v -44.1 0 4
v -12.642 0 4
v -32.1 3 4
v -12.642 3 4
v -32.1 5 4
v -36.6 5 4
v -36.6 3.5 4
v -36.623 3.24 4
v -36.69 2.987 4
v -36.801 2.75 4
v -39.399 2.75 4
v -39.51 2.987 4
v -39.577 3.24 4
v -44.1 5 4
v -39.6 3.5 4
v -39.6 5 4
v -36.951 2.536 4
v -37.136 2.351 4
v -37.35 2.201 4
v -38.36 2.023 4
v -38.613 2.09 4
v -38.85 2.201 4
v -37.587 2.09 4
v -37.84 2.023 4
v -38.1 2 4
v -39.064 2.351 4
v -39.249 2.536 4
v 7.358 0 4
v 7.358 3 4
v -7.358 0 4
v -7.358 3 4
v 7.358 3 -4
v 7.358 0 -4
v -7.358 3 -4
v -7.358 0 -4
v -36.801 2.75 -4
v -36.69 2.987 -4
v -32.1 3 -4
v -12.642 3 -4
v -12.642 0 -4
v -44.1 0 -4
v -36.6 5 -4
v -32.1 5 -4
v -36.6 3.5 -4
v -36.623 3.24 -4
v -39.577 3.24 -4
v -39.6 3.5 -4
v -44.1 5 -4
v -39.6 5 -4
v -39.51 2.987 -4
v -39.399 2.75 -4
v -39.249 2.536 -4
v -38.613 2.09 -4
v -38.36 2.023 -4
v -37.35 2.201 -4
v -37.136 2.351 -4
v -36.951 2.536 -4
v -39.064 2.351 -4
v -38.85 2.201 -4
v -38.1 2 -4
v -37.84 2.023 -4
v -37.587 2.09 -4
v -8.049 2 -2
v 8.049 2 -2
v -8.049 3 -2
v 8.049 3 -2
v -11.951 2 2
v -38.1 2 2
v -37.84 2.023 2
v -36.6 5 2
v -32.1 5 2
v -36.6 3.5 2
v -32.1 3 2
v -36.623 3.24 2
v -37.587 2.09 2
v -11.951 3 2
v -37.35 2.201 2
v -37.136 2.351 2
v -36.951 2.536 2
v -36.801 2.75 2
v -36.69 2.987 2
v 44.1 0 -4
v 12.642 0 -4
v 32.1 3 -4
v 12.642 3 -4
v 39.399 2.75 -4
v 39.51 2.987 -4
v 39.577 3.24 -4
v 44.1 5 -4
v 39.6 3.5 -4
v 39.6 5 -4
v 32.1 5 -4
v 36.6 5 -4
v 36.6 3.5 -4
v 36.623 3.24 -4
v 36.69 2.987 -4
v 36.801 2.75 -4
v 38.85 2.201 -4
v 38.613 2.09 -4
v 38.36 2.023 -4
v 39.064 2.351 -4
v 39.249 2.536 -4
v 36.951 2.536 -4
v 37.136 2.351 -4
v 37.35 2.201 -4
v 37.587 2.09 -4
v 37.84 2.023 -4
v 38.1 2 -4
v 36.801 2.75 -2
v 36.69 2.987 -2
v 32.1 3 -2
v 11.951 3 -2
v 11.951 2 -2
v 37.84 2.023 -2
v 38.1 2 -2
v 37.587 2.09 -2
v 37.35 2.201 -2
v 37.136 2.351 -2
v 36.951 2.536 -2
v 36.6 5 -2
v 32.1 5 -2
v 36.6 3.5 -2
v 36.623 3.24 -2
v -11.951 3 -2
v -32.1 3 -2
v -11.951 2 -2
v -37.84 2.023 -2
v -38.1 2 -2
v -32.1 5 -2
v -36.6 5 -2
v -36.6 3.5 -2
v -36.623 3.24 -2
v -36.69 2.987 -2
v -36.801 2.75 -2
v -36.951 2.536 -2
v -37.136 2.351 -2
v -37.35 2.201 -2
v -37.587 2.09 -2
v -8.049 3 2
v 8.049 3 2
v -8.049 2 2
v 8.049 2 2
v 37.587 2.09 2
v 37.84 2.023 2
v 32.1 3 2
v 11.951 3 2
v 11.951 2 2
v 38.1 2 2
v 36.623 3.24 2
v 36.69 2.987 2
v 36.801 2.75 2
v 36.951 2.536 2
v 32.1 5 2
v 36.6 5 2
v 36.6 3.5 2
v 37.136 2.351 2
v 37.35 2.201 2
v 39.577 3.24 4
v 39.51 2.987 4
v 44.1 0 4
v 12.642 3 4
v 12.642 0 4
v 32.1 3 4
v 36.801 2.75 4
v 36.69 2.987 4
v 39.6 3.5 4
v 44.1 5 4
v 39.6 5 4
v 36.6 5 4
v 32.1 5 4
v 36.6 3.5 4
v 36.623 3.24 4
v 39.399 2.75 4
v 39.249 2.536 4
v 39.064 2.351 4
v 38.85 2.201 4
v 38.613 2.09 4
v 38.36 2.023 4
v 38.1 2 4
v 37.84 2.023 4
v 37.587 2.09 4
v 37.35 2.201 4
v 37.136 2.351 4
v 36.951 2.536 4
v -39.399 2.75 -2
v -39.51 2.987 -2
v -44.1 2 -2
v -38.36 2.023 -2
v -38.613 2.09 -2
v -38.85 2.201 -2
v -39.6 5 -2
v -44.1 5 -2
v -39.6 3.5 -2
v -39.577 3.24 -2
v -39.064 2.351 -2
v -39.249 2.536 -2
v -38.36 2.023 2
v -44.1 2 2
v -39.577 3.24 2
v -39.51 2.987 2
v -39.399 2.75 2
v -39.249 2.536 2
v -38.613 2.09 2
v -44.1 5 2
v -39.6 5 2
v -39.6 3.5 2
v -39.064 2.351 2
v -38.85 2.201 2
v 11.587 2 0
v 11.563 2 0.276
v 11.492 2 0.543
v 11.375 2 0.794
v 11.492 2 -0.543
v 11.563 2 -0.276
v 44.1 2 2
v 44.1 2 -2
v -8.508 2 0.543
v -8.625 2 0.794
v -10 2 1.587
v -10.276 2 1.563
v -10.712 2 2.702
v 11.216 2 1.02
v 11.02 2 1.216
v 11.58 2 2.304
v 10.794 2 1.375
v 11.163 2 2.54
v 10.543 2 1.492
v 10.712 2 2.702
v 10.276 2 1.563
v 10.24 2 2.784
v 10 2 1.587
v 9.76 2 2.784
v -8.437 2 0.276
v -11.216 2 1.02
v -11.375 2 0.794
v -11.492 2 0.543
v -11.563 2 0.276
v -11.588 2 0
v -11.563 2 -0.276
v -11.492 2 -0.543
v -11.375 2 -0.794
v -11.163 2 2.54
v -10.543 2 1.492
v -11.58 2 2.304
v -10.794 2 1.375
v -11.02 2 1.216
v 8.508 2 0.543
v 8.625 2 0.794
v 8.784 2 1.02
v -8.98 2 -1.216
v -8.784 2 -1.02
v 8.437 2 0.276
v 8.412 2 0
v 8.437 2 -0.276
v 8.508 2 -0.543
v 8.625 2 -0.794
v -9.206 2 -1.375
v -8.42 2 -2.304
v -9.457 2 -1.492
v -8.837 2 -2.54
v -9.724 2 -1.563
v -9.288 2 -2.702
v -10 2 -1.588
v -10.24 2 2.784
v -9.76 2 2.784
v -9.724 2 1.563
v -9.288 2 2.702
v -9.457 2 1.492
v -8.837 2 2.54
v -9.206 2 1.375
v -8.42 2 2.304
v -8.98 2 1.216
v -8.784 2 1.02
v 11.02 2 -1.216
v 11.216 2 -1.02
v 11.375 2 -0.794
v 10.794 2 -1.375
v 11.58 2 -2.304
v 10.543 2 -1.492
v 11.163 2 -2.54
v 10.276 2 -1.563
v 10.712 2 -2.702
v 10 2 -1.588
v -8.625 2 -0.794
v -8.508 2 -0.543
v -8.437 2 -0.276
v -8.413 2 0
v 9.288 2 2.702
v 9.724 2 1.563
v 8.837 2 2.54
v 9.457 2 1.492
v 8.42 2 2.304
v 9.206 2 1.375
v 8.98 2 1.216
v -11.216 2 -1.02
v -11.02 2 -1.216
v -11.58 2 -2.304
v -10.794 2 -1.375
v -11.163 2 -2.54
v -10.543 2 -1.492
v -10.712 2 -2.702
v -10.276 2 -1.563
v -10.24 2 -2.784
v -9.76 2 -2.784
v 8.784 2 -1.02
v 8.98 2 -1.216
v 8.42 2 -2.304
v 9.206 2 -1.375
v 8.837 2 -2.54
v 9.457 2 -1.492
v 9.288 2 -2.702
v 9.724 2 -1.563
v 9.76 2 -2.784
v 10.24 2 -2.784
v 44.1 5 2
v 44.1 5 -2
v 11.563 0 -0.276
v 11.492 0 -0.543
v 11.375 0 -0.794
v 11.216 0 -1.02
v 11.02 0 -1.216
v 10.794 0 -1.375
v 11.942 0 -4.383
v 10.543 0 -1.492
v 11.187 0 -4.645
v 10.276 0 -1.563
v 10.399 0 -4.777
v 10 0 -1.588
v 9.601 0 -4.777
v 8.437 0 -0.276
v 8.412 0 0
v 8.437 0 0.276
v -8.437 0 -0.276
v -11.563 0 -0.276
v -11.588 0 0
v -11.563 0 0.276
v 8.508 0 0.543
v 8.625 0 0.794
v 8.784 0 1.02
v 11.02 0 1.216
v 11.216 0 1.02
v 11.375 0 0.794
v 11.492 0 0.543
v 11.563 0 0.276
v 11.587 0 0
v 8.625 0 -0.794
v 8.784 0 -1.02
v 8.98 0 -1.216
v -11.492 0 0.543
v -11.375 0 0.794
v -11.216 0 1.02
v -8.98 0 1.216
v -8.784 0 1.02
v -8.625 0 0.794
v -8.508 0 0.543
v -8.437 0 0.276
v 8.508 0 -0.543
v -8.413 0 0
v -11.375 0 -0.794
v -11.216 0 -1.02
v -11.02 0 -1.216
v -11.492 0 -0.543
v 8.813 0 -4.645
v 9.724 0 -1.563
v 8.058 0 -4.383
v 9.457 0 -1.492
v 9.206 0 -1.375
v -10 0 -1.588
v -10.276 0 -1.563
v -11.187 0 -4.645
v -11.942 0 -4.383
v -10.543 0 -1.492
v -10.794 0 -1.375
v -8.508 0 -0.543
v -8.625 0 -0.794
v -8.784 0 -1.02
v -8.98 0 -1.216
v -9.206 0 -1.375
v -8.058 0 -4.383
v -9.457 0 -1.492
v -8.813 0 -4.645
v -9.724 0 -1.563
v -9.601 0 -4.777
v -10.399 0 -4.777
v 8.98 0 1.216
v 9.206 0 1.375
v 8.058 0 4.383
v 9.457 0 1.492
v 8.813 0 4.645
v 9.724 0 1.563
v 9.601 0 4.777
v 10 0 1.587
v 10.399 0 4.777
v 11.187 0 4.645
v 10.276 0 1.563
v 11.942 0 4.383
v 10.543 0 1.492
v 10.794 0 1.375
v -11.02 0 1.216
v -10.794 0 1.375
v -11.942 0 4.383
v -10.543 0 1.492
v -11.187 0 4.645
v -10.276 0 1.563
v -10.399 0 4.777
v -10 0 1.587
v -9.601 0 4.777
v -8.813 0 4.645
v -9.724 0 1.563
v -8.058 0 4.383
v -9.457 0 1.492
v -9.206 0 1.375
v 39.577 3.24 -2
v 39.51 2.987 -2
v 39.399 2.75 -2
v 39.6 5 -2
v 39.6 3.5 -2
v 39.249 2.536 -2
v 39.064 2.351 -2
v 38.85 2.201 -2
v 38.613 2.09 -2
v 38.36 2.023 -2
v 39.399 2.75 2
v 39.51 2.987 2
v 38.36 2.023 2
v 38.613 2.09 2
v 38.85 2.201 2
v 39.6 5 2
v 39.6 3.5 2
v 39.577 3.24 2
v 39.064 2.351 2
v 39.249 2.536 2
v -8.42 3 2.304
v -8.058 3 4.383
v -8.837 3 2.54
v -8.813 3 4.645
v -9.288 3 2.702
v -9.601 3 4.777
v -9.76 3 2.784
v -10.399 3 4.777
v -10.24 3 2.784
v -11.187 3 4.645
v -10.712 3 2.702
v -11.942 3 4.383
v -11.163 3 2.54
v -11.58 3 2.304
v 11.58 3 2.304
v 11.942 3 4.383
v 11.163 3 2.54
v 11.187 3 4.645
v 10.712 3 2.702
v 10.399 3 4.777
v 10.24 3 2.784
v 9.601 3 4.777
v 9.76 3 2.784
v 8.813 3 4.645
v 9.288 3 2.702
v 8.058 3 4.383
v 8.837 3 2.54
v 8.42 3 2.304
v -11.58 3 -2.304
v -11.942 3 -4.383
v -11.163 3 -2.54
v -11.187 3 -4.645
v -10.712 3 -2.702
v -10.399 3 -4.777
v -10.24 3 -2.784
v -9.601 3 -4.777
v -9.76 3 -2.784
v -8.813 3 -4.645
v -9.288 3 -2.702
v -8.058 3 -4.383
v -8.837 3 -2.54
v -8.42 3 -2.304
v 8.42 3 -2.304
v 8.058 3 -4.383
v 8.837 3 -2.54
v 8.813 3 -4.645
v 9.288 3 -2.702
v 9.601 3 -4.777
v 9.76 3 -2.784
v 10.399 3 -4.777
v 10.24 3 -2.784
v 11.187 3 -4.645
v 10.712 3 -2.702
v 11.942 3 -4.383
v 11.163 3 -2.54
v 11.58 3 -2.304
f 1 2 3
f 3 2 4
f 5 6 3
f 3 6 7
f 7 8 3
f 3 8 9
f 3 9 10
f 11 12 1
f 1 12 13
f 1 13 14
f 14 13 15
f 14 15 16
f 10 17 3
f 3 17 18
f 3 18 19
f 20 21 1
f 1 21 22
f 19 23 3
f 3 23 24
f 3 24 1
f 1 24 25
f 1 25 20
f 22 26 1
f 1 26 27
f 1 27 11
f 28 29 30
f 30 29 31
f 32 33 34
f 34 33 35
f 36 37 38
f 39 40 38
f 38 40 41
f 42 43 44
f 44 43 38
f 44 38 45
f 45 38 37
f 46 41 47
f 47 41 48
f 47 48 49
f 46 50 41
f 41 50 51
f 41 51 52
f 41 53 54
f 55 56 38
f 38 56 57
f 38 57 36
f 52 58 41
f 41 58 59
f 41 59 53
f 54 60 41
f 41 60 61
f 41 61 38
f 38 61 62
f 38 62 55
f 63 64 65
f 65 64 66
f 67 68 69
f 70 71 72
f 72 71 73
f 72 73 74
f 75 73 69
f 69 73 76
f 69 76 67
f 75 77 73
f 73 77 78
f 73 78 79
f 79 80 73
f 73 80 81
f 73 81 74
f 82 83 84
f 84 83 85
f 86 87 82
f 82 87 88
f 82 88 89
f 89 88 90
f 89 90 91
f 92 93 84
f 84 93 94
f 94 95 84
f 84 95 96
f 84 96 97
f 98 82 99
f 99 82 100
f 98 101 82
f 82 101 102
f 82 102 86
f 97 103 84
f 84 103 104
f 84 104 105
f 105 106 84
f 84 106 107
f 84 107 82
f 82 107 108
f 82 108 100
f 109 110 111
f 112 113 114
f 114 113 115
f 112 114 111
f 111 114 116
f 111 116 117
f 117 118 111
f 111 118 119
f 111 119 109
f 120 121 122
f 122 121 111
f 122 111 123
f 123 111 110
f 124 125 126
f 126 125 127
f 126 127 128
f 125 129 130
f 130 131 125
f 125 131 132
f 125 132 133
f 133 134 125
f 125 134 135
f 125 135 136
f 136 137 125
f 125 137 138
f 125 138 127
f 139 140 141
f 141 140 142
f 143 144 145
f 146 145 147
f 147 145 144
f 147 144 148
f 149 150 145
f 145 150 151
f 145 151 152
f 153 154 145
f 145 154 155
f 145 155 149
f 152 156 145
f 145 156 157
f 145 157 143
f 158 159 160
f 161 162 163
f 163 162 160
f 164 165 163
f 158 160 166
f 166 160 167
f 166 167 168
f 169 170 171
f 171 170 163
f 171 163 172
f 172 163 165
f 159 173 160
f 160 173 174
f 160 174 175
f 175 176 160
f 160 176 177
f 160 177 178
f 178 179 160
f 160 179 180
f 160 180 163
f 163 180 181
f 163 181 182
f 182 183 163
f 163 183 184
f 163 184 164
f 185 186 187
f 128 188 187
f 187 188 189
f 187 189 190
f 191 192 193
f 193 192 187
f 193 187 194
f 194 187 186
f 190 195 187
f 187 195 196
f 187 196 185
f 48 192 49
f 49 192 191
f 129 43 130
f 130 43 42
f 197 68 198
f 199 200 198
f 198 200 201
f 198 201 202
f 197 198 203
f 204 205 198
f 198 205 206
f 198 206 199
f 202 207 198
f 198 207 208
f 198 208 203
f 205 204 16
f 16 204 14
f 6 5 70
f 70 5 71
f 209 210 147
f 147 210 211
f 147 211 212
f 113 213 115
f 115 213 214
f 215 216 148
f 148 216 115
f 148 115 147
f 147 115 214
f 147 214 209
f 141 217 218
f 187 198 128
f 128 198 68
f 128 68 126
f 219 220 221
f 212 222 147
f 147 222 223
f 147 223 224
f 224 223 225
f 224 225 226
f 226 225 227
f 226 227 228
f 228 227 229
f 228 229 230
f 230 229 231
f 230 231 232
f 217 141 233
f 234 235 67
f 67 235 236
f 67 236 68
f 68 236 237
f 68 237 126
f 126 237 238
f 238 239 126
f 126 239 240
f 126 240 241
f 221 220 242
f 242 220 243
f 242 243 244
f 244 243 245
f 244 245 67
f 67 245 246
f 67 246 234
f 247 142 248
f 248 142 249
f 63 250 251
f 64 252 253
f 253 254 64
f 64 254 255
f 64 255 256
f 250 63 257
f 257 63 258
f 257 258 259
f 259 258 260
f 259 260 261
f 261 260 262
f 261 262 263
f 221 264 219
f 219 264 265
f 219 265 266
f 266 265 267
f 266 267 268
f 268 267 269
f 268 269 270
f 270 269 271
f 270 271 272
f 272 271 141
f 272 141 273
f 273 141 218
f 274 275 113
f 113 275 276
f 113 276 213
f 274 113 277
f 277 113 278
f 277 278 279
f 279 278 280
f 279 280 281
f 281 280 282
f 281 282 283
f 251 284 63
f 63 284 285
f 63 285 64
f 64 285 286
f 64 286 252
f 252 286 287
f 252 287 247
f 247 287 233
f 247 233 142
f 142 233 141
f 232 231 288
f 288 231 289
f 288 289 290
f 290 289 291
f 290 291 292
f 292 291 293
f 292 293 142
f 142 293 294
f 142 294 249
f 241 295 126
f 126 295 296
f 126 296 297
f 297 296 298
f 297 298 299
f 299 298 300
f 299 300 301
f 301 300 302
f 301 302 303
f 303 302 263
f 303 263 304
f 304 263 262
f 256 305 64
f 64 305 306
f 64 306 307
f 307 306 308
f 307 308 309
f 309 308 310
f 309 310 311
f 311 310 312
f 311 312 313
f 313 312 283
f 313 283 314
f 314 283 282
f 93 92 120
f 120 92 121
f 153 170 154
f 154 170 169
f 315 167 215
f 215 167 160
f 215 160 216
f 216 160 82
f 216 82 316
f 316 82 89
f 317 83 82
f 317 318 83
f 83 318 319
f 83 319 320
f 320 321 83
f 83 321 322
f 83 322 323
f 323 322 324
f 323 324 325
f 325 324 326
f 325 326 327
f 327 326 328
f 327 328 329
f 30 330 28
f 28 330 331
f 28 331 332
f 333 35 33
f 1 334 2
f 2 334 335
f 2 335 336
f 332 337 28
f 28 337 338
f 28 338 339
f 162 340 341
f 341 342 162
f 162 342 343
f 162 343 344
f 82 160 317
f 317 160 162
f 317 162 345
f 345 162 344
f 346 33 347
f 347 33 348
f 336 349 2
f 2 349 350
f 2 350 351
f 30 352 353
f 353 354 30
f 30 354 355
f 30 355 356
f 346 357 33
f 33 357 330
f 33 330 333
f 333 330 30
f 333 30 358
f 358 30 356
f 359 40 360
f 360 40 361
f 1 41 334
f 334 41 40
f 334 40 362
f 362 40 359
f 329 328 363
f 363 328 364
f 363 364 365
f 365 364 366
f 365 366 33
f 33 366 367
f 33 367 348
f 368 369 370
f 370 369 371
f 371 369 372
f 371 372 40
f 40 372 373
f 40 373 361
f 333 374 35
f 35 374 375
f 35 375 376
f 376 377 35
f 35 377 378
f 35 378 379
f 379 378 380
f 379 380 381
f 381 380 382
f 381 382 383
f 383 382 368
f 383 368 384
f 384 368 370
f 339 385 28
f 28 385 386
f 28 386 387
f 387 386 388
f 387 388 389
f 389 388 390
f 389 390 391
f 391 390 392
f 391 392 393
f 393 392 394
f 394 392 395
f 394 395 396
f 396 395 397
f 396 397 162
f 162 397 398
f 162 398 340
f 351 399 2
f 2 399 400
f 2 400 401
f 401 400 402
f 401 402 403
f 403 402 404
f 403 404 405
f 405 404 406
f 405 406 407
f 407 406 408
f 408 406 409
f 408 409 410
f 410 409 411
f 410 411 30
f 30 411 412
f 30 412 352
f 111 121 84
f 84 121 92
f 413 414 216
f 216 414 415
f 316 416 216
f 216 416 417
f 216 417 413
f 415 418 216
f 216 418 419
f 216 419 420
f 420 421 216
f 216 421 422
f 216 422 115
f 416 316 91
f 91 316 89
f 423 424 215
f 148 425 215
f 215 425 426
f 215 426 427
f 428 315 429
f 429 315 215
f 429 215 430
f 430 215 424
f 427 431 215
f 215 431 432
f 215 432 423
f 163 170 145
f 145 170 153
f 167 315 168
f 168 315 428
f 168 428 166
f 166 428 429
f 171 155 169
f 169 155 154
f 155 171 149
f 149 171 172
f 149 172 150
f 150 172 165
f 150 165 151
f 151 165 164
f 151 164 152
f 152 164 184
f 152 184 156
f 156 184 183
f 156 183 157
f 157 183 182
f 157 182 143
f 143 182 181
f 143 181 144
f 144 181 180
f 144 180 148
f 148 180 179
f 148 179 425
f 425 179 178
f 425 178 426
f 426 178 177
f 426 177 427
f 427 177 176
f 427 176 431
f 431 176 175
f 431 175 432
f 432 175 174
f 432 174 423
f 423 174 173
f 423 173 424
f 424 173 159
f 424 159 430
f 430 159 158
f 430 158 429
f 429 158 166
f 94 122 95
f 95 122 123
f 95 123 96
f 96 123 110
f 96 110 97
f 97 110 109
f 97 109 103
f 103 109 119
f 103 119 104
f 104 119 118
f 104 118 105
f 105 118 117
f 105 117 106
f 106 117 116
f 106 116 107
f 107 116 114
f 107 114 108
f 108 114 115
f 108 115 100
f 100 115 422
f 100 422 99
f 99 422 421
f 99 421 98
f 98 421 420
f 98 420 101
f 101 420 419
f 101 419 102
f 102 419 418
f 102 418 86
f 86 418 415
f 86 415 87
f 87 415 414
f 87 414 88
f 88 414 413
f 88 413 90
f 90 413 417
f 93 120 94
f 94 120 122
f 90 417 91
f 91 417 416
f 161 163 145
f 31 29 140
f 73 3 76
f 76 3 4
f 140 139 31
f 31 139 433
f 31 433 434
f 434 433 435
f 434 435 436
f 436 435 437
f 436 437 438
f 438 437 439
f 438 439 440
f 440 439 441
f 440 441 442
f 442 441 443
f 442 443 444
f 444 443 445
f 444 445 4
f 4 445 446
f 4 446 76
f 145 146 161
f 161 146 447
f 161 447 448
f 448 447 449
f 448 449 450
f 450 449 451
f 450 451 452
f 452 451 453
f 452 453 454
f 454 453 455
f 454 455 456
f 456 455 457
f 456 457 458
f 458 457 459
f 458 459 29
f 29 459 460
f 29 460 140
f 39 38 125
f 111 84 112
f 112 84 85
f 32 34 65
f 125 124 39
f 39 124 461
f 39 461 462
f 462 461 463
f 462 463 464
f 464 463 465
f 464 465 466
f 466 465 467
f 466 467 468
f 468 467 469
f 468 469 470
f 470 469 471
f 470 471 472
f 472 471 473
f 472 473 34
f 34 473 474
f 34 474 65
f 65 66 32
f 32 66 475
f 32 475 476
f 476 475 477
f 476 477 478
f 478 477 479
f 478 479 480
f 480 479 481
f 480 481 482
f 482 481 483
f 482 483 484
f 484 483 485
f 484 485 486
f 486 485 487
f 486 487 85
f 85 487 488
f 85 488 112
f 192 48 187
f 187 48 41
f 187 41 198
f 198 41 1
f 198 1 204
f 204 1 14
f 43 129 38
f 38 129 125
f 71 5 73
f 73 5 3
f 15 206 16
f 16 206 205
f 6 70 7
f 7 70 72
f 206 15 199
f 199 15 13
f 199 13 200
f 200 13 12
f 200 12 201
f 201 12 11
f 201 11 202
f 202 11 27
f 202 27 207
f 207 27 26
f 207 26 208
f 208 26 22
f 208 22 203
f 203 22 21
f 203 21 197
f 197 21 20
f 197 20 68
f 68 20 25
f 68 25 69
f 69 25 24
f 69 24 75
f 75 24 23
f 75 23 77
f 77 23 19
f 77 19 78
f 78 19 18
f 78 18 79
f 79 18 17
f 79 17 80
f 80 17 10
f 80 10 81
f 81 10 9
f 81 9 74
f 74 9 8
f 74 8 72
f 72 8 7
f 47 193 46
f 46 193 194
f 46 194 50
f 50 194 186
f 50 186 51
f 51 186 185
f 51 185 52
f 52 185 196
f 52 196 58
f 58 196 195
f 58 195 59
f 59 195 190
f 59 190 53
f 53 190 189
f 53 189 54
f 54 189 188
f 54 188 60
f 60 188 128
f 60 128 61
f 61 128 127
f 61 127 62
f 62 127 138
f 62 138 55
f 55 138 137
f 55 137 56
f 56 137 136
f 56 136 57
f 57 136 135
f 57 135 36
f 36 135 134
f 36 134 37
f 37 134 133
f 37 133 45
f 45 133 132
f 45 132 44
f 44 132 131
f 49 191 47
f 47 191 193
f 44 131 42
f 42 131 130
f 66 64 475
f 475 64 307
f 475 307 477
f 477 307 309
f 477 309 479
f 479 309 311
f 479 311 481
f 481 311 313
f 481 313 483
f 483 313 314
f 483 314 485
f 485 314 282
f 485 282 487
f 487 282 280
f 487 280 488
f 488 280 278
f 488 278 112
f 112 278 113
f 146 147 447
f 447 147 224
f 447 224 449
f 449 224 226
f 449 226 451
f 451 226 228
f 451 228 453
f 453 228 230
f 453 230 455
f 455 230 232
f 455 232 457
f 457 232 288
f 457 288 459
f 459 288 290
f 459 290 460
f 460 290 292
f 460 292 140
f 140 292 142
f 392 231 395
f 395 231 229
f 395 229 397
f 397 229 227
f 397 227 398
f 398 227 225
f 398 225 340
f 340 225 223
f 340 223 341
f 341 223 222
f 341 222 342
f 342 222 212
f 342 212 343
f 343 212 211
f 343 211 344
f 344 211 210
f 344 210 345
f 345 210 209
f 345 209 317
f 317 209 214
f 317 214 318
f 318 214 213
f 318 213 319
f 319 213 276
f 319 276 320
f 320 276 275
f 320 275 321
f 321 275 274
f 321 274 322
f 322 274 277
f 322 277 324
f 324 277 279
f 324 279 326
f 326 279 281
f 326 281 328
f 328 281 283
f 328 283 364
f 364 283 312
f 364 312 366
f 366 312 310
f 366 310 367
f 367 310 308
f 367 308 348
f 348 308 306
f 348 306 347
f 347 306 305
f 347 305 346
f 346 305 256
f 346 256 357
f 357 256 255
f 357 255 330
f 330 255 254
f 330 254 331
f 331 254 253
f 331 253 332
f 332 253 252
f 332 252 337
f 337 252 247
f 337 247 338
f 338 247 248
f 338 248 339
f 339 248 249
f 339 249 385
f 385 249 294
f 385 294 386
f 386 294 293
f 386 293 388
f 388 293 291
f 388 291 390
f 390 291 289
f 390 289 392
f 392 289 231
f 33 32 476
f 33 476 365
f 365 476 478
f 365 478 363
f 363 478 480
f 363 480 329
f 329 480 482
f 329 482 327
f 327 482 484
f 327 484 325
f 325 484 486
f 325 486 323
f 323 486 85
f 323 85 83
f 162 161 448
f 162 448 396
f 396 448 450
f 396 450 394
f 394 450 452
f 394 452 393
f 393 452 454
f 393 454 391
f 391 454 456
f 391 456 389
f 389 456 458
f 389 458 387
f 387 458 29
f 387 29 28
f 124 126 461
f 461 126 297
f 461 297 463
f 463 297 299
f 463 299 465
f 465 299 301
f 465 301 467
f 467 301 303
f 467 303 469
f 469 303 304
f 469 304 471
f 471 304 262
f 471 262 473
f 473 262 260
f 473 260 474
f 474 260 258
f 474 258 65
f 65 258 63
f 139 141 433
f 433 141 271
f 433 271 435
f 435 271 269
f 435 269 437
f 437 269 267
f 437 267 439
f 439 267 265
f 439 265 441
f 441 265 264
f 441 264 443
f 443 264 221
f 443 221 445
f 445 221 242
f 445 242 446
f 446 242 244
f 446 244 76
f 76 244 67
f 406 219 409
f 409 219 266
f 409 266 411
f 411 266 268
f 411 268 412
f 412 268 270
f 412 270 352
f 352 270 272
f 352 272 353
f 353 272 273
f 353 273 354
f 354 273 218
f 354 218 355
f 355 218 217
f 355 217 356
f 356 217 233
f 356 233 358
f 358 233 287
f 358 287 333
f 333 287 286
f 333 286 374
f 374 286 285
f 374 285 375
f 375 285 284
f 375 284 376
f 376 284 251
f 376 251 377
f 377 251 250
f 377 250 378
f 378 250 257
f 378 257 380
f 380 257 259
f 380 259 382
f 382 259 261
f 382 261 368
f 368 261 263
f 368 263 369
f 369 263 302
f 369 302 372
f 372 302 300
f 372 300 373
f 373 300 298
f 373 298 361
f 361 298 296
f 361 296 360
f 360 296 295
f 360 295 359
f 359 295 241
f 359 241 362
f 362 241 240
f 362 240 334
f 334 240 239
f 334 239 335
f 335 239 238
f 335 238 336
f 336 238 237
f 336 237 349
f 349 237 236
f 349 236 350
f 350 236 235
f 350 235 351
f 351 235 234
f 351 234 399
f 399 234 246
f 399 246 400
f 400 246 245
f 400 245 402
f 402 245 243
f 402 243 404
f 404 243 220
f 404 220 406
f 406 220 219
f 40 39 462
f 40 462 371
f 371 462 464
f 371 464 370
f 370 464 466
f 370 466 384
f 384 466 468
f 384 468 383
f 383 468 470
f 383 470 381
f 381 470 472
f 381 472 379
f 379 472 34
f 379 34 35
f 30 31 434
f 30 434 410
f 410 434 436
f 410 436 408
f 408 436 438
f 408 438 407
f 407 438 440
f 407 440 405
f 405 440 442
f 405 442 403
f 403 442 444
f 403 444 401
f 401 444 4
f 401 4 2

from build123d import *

# Parameters (mm, degrees)
SKETCH1_W           = 44.1
SKETCH1_H           = 8
BOSS_EXTRUDE1_DEPTH = 2
SKETCH2_W           = 12
SKETCH2_H           = 2
BOSS_EXTRUDE2_DEPTH = 3
CUT_EXTRUDE1_DEPTH  = 46.097782651
SKETCH4_W           = 32.1
SKETCH4_H           = 2
BOSS_EXTRUDE3_DEPTH = 1
SKETCH7_R           = 2.794
CUT_EXTRUDE3_DEPTH  = 45.382541613
SKETCH8_R           = 1.5875
CUT_EXTRUDE4_DEPTH  = 45.382541613
BOSS_EXTRUDE4_DEPTH = 3


with BuildPart() as part:
    # Sketch1 → Boss-Extrude1 (new body)
    with BuildSketch(Plane(origin=(0, 0, 0), x_dir=(1, 0, 0), z_dir=(0, 1, 0))):
        with Locations((22.05, 0)):
            Rectangle(SKETCH1_W, SKETCH1_H)
    boss_extrude1 = extrude(amount=BOSS_EXTRUDE1_DEPTH)

    # Sketch2 → Boss-Extrude2 (add)
    with BuildSketch(Plane(origin=(0, 2, 0), x_dir=(1, 0, 0), z_dir=(0, 1, 0))):
        with Locations((38.1, 3)):
            Rectangle(SKETCH2_W, SKETCH2_H)
        with Locations((38.1, -3)):
            Rectangle(SKETCH2_W, SKETCH2_H)
    boss_extrude2 = extrude(amount=BOSS_EXTRUDE2_DEPTH)

    # Sketch3 → Cut-Extrude1 (cut, through all)
    with BuildSketch(Plane.XY.offset(4)):
        with BuildLine():
            Line((36.6, 3.5), (36.6, 5))
            Line((36.6, 5), (39.6, 5))
            Line((39.6, 5), (39.6, 3.5))
            ThreePointArc((39.6, 3.5), (38.1, 2), (36.6, 3.5))
        make_face()
    cut_extrude1 = extrude(amount=-CUT_EXTRUDE1_DEPTH, mode=Mode.SUBTRACT)

    # Sketch4 → Boss-Extrude3 (add)
    with BuildSketch(Plane(origin=(0, 2, 0), x_dir=(1, 0, 0), z_dir=(0, 1, 0))):
        with Locations((16.05, -3)):
            Rectangle(SKETCH4_W, SKETCH4_H)
        with Locations((16.05, 3)):
            Rectangle(SKETCH4_W, SKETCH4_H)
    boss_extrude3 = extrude(amount=BOSS_EXTRUDE3_DEPTH)

    # Mirror1: Boss-Extrude1, Boss-Extrude2, Cut-Extrude1, Boss-Extrude3 across plane
    add(boss_extrude1.mirror(Plane(origin=(0, 0, 0), x_dir=(0, 0, 1), z_dir=(1, 0, 0))))
    add(boss_extrude2.mirror(Plane(origin=(0, 0, 0), x_dir=(0, 0, 1), z_dir=(1, 0, 0))))
    add(cut_extrude1.mirror(Plane(origin=(0, 0, 0), x_dir=(0, 0, 1), z_dir=(1, 0, 0))), mode=Mode.SUBTRACT)
    add(boss_extrude3.mirror(Plane(origin=(0, 0, 0), x_dir=(0, 0, 1), z_dir=(1, 0, 0))))

    # Sketch7 → Cut-Extrude3 (cut, through all)
    with BuildSketch(Plane(origin=(0, 2, 0), x_dir=(1, 0, 0), z_dir=(0, 1, 0))):
        with Locations((10, 0)):
            Circle(SKETCH7_R)
    cut_extrude3 = extrude(amount=CUT_EXTRUDE3_DEPTH, mode=Mode.SUBTRACT)

    # Sketch8 → Cut-Extrude4 (cut, through all)
    with BuildSketch(Plane(origin=(0, 2, 0), x_dir=(1, 0, 0), z_dir=(0, 1, 0))):
        with Locations(Location((10, 0, 0), (0, 0, 270))):
            Circle(SKETCH8_R)
    cut_extrude4 = extrude(amount=-CUT_EXTRUDE4_DEPTH, mode=Mode.SUBTRACT)

    # Sketch9 → Boss-Extrude4 (add)
    with BuildSketch(Plane(origin=(0, 3, 0), x_dir=(1, 0, 0), z_dir=(0, 1, 0))):
        with BuildLine():
            Line((12.642429942, 4), (7.357570058, 4))
            ThreePointArc((7.357570058, 4), (10, 4.794), (12.642429942, 4))
        make_face()
        with BuildLine():
            Line((7.357570058, -4), (12.642429942, -4))
            ThreePointArc((12.642429942, -4), (10, -4.794), (7.357570058, -4))
        make_face()
    boss_extrude4 = extrude(amount=-BOSS_EXTRUDE4_DEPTH)

    # Mirror2: Cut-Extrude3, Cut-Extrude4, Boss-Extrude4 across plane
    add(cut_extrude3.mirror(Plane(origin=(0, 0, 0), x_dir=(0, 0, 1), z_dir=(1, 0, 0))), mode=Mode.SUBTRACT)
    add(cut_extrude4.mirror(Plane(origin=(0, 0, 0), x_dir=(0, 0, 1), z_dir=(1, 0, 0))), mode=Mode.SUBTRACT)
    add(boss_extrude4.mirror(Plane(origin=(0, 0, 0), x_dir=(0, 0, 1), z_dir=(1, 0, 0))))


solid = part.part
